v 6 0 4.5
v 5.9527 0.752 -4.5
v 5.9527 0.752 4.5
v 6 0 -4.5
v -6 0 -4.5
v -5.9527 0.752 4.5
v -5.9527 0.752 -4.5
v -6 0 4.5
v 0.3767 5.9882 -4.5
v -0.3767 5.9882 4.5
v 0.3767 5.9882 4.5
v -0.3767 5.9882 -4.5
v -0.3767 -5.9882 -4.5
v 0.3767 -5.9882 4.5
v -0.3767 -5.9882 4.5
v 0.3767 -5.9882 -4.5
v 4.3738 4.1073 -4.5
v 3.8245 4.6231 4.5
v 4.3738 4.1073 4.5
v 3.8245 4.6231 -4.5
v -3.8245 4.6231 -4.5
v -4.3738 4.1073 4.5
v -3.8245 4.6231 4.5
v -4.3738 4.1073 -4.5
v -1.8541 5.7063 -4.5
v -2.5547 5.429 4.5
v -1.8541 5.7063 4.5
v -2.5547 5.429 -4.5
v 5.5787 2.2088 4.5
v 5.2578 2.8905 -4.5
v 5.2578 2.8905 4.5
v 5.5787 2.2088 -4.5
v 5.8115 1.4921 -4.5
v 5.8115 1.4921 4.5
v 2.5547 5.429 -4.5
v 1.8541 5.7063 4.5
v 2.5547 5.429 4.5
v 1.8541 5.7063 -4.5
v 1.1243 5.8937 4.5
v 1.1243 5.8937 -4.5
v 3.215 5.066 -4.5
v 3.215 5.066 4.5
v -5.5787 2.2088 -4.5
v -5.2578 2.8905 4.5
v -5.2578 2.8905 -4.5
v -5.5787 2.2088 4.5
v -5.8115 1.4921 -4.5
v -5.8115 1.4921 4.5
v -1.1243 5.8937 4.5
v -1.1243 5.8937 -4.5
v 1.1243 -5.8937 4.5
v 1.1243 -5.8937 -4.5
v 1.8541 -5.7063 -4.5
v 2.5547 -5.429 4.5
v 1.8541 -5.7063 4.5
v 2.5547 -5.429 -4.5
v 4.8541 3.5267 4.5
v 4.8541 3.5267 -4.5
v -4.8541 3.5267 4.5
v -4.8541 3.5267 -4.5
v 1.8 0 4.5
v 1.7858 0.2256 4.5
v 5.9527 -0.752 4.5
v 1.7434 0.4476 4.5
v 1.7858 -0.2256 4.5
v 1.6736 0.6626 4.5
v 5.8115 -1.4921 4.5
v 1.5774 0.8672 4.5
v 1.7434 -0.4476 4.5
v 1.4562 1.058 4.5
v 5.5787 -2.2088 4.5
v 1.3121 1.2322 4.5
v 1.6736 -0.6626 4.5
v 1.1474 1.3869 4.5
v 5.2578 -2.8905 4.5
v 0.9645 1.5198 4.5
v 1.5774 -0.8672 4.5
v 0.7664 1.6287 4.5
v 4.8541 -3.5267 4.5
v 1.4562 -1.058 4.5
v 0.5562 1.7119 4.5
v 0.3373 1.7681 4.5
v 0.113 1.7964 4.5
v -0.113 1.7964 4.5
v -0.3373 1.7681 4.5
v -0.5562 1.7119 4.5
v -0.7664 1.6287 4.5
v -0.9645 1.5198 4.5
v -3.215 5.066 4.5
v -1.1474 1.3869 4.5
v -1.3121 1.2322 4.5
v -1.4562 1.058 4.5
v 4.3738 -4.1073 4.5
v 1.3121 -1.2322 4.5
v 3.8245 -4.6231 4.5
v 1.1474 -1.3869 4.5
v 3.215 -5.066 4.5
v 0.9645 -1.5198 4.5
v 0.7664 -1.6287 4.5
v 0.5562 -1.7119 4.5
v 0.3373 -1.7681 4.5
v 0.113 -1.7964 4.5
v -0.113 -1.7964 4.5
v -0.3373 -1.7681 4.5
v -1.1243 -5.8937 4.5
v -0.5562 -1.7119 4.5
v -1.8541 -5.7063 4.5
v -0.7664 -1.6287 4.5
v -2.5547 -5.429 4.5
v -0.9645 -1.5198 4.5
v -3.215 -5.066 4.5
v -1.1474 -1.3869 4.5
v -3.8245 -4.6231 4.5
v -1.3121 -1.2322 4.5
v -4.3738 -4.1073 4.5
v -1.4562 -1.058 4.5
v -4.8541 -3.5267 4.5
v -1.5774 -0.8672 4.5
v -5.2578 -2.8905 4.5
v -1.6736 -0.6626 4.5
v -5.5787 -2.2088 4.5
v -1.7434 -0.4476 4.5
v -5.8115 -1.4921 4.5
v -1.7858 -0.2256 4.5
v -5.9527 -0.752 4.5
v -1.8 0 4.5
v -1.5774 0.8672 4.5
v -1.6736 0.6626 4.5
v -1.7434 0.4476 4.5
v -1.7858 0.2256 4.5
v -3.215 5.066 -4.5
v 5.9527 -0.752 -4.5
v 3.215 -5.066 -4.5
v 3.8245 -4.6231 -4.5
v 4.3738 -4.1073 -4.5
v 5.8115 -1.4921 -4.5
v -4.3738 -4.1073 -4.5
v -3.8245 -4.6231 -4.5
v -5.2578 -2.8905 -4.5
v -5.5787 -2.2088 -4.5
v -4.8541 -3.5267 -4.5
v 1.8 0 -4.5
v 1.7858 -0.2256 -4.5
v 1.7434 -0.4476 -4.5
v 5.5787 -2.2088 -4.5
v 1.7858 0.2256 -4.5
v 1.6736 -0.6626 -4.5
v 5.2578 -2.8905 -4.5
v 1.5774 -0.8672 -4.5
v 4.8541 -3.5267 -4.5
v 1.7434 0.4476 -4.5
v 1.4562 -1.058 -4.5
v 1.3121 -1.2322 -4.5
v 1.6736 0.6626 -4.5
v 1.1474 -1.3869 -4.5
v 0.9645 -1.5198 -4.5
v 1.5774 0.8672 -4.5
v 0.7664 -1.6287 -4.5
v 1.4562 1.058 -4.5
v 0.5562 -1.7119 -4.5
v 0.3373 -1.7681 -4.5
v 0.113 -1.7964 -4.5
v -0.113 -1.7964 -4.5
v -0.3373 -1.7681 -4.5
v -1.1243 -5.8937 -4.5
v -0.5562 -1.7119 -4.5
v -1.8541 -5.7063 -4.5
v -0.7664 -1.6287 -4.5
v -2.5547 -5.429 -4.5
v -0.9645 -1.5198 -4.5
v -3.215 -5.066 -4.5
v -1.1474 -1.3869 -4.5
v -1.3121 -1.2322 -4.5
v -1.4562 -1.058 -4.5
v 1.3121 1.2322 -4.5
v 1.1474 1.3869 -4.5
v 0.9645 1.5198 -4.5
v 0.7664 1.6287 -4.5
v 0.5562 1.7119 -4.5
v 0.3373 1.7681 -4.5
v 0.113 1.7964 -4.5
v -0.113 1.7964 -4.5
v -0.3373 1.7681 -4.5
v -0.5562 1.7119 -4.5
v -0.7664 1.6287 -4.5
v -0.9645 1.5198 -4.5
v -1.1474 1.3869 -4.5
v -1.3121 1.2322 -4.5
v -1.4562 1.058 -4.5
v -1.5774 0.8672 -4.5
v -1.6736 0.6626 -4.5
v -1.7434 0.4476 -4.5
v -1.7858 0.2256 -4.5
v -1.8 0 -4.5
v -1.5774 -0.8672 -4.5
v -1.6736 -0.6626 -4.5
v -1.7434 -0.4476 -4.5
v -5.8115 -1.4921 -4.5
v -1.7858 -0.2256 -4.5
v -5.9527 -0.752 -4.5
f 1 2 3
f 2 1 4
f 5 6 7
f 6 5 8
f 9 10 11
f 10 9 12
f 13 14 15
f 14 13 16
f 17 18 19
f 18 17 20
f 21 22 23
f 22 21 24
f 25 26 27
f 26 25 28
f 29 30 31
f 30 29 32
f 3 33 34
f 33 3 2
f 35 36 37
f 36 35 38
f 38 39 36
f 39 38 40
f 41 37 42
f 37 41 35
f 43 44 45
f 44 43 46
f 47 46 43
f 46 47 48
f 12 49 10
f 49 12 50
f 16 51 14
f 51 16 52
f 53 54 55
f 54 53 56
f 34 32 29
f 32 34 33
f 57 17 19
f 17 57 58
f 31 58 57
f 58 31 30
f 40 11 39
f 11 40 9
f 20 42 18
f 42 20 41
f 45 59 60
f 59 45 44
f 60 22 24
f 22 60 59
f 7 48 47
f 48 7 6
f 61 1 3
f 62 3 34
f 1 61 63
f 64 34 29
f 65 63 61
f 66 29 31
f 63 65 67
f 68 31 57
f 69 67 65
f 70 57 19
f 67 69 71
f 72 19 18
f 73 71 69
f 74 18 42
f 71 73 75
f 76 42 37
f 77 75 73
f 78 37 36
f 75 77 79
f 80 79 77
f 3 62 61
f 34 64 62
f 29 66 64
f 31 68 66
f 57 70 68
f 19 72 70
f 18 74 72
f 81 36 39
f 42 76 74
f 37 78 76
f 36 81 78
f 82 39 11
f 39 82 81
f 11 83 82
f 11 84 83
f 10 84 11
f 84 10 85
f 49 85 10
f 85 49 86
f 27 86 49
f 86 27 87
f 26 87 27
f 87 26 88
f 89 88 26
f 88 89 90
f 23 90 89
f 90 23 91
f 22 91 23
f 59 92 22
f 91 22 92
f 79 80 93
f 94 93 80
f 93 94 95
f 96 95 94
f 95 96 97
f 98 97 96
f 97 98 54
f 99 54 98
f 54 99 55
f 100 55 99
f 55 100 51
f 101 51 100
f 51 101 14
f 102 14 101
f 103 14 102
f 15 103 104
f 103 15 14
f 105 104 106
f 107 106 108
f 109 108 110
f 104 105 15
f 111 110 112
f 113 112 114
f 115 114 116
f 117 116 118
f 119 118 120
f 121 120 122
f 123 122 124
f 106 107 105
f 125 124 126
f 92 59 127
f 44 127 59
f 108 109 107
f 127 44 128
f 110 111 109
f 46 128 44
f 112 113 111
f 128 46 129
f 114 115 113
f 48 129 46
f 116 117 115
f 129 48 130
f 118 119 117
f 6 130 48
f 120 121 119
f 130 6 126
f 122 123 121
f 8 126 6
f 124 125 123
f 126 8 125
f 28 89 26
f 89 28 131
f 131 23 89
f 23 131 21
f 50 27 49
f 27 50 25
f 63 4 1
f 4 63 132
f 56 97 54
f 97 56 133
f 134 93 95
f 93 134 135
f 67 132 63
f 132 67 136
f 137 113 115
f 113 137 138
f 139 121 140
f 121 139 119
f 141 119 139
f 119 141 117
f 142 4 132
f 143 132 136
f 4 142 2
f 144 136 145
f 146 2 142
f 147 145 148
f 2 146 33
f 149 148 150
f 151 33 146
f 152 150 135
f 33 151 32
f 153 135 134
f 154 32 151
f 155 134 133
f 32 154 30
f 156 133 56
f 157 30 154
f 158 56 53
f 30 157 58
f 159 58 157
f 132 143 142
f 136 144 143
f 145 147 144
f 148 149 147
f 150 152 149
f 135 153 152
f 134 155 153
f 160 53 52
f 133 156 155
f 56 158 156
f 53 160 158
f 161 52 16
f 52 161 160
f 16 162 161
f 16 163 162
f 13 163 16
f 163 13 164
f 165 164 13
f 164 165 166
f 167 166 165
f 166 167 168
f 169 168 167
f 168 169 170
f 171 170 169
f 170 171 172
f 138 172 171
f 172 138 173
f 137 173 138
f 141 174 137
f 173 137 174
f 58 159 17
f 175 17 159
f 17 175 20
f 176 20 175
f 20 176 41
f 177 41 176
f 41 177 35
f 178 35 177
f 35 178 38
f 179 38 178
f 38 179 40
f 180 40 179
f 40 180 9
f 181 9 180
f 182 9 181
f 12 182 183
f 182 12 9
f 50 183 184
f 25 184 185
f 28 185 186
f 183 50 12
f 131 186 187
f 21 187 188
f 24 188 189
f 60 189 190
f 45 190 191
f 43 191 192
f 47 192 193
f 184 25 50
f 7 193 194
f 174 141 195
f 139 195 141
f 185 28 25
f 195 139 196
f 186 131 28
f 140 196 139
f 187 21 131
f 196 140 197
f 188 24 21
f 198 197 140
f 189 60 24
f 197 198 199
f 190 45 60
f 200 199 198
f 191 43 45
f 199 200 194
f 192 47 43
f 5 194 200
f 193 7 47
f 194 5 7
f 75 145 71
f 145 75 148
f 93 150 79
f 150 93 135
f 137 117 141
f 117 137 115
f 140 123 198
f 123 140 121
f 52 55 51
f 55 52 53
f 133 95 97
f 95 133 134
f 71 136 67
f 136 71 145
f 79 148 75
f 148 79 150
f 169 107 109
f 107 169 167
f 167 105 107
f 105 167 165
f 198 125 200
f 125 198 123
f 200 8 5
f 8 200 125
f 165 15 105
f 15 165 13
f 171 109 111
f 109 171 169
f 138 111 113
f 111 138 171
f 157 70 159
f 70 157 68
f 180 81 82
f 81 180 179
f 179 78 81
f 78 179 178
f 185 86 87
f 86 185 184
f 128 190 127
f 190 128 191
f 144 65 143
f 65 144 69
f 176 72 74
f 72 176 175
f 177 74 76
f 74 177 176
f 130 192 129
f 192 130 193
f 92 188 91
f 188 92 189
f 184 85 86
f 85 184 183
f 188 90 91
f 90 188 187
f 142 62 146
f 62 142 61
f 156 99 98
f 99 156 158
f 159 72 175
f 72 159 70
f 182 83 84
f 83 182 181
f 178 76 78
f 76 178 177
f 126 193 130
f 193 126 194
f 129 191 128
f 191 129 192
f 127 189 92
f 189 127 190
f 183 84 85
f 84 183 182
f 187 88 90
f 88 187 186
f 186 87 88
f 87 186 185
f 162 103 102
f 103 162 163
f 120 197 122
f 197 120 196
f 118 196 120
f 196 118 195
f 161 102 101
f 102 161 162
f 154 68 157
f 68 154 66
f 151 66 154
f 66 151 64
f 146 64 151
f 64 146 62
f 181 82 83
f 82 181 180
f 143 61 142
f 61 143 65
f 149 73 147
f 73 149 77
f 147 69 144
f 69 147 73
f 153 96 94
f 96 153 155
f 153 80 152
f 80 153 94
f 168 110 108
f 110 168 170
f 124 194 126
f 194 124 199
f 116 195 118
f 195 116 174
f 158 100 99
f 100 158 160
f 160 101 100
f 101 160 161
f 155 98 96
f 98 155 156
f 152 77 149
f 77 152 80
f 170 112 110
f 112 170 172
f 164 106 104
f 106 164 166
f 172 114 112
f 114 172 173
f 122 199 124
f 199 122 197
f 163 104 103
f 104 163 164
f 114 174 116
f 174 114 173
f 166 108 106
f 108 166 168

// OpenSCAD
$fn = 50;


difference() {
	union() {
		translate(v = [0, 0, -4.5000000000]) {
			cylinder(h = 9, r = 6.0000000000);
		}
	}
	union() {
		translate(v = [0, 0, -100.0000000000]) {
			cylinder(h = 200, r = 1.8000000000);
		}
	}
}
